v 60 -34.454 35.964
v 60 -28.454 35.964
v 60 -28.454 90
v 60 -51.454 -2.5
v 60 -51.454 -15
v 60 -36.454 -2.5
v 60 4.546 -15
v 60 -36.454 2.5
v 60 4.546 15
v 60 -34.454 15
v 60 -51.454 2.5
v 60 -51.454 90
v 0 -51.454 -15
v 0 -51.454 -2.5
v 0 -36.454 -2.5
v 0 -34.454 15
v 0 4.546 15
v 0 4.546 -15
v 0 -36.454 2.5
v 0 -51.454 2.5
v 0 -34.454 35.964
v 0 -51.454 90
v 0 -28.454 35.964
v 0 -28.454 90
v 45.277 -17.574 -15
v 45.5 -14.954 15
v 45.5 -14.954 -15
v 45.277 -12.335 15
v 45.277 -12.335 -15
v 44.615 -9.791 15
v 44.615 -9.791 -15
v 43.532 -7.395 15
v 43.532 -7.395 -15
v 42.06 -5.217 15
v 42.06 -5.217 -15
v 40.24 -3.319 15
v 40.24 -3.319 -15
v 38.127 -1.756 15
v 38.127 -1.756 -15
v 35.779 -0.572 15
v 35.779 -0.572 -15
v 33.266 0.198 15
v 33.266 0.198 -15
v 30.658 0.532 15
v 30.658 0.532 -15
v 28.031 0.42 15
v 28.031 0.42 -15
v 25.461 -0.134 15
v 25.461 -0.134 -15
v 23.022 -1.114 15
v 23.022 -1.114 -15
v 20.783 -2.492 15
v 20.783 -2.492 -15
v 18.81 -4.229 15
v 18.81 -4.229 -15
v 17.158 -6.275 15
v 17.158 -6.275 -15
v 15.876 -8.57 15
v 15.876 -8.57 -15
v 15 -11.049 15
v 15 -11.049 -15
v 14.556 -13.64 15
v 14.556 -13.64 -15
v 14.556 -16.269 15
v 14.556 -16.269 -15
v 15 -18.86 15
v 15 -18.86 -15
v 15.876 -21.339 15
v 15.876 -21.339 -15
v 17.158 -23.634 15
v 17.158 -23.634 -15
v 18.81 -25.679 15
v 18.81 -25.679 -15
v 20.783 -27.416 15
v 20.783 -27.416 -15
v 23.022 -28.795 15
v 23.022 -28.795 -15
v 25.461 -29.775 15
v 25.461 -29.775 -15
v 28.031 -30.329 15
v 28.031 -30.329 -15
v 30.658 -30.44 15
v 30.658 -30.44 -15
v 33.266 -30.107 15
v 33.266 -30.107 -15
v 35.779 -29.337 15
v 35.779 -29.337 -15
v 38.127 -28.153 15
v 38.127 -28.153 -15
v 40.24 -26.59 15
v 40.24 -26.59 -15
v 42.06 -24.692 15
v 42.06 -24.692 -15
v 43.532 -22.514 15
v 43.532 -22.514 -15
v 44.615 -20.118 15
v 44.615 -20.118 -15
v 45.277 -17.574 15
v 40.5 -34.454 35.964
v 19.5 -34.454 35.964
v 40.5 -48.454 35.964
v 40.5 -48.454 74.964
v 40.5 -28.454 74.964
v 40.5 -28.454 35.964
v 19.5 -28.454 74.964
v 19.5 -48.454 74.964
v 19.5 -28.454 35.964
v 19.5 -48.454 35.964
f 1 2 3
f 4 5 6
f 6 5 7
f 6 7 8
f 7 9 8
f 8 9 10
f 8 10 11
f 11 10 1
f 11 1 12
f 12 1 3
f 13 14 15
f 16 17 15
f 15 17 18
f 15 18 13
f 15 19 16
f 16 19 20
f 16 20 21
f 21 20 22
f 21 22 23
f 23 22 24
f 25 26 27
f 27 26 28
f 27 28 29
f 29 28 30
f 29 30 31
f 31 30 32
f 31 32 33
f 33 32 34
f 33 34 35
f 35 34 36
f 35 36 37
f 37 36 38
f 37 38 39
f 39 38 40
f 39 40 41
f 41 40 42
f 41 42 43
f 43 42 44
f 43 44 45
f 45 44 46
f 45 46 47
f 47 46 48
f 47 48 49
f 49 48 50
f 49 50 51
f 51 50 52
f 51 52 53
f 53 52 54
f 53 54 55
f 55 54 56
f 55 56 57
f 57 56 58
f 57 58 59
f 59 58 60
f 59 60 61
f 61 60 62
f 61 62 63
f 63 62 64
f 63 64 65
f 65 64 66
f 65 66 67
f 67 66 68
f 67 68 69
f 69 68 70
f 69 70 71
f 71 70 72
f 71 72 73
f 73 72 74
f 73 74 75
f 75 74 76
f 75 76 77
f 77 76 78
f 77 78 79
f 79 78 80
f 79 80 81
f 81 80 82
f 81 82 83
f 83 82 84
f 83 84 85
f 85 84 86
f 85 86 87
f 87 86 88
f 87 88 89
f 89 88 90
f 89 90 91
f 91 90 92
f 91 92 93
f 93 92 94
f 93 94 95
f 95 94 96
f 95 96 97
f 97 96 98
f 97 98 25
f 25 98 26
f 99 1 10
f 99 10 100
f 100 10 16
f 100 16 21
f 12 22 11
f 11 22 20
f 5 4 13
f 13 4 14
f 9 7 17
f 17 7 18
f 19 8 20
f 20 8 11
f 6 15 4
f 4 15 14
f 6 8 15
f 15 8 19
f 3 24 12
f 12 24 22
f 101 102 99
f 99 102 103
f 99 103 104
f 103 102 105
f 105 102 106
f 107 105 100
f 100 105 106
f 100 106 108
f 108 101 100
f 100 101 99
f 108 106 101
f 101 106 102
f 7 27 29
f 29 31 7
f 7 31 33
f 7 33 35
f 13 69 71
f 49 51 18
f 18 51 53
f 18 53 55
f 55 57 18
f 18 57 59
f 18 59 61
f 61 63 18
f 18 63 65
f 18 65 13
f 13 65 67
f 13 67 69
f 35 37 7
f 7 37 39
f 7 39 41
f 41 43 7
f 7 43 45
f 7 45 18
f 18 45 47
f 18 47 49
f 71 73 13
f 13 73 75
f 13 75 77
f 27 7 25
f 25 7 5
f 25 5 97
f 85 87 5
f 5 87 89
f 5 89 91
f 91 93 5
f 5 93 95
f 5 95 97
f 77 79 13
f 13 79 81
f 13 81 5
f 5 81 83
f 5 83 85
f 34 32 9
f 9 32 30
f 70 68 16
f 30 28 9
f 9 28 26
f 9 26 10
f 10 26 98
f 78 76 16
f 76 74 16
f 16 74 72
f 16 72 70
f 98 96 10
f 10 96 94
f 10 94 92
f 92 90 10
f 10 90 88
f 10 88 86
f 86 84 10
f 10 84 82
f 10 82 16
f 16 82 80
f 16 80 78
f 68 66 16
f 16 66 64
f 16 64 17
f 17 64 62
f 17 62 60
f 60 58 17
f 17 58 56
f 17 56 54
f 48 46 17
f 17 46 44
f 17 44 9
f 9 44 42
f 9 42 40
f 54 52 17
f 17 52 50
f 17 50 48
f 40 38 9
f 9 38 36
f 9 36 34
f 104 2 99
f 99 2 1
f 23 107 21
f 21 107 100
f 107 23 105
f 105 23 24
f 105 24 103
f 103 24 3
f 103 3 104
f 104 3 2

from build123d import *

# Parameters (mm, degrees)
EXTRUDE_1_DEPTH          = 60
CUT_EXTRUDE_1_DEPTH      = 40
CUT_EXTRUDE_1_DEPTH_BACK = 29
SKETCH_4_R               = 15.5
SKETCH_5_W               = 5
SKETCH_5_H               = 30
CUT_EXTRUDE_2_DEPTH      = 83.900874001
SKETCH_7_W               = 60
SKETCH_7_H               = 85.424918669
EXTRUDE_2_DEPTH          = 17
CUT_EXTRUDE_START        = -34.454396
SKETCH_9_W               = 21
SKETCH_9_H               = 39
CUT_EXTRUDE_3_DEPTH      = 14
CUT_EXTRUDE_START_2      = -15
SKETCH_14_W              = 60
SKETCH_14_H              = 56
CUT_EXTRUDE_8_DEPTH      = 10
CUT_EXTRUDE_START_3      = 15
SKETCH_16_W              = 60
SKETCH_16_H              = 39
CUT_EXTRUDE_11_DEPTH     = 10
EXTRUDE_START            = -34.454396
EXTRUDE_5_DEPTH          = 6


with BuildPart() as part:
    # 스케치3 → 보스-돌출1 (new body)
    with BuildSketch(Plane(origin=(0, 0, 0), x_dir=(0, 0, -1), z_dir=(1, 0, 0))):
        Polygon((-25, -51.454396413), (25, -51.454396413), (15, 4.545603587), (-15, 4.545603587), align=None)
    extrude(amount=EXTRUDE_1_DEPTH)

    # 스케치4 → 컷-돌출1 (cut, two sides: drawn at the far end of the back side and taken through both)
    with BuildSketch(Plane.XY.offset(-CUT_EXTRUDE_1_DEPTH_BACK)):
        with Locations(Location((30, -14.954396413, 0), (0, 0, 90))):
            Circle(SKETCH_4_R)
    extrude(amount=CUT_EXTRUDE_1_DEPTH + CUT_EXTRUDE_1_DEPTH_BACK, mode=Mode.SUBTRACT)

    # 스케치5 → 컷-돌출2 (cut, through all)
    with BuildSketch(Plane(origin=(0, 0, 0), x_dir=(0, 0, -1), z_dir=(1, 0, 0))):
        with Locations((0, -51.454396413)):
            Rectangle(SKETCH_5_W, SKETCH_5_H)
    extrude(amount=CUT_EXTRUDE_2_DEPTH, mode=Mode.SUBTRACT)

    # 스케치7 → 보스-돌출2 (add)
    with BuildSketch(Plane(origin=(0, -51.454396413, 0), x_dir=(-1, 0, 0), z_dir=(0, -1, 0))):
        with Locations((-30, -47.287540666)):
            Rectangle(SKETCH_7_W, SKETCH_7_H)
    extrude(amount=-EXTRUDE_2_DEPTH)

    # 스케치9 → 컷-돌출3 (cut)
    with BuildSketch(Plane(origin=(0, 0, 0), x_dir=(1, 0, 0), z_dir=(0, 1, 0)).offset(CUT_EXTRUDE_START)):
        with Locations((30, -55.464285714)):
            Rectangle(SKETCH_9_W, SKETCH_9_H)
    extrude(amount=-CUT_EXTRUDE_3_DEPTH, mode=Mode.SUBTRACT)

    # 스케치14 → 컷-돌출8 (cut)
    with BuildSketch(Plane.XY.offset(CUT_EXTRUDE_START_2)):
        with Locations((30, -23.454396413)):
            Rectangle(SKETCH_14_W, SKETCH_14_H)
    extrude(amount=-CUT_EXTRUDE_8_DEPTH, mode=Mode.SUBTRACT)

    # 스케치16 → 컷-돌출11 (cut)
    with BuildSketch(Plane.XY.offset(CUT_EXTRUDE_START_3)):
        with Locations((30, -14.954396413)):
            Rectangle(SKETCH_16_W, SKETCH_16_H)
    extrude(amount=CUT_EXTRUDE_11_DEPTH, mode=Mode.SUBTRACT)


with BuildPart() as extrude_5_tool:
    # 스케치17 → 보스-돌출5 (new body)
    with BuildSketch(Plane(origin=(0, 0, 0), x_dir=(1, 0, 0), z_dir=(0, 1, 0)).offset(EXTRUDE_START)):
        Polygon((19.5, -35.964285714), (0, -35.964285714), (0, -90), (60, -90), (60, -35.964285714), (40.5, -35.964285714), (40.5, -74.964285714), (19.5, -74.964285714), align=None)
    extrude(amount=EXTRUDE_5_DEPTH)


with BuildPart() as part_1:
    add(part.part)


with BuildPart() as part_2:
    # 보스-돌출5: joined with extrude_5_tool
    add(part_1.part.fuse(extrude_5_tool.part, tol=0.00001))


solid = part_2.part
